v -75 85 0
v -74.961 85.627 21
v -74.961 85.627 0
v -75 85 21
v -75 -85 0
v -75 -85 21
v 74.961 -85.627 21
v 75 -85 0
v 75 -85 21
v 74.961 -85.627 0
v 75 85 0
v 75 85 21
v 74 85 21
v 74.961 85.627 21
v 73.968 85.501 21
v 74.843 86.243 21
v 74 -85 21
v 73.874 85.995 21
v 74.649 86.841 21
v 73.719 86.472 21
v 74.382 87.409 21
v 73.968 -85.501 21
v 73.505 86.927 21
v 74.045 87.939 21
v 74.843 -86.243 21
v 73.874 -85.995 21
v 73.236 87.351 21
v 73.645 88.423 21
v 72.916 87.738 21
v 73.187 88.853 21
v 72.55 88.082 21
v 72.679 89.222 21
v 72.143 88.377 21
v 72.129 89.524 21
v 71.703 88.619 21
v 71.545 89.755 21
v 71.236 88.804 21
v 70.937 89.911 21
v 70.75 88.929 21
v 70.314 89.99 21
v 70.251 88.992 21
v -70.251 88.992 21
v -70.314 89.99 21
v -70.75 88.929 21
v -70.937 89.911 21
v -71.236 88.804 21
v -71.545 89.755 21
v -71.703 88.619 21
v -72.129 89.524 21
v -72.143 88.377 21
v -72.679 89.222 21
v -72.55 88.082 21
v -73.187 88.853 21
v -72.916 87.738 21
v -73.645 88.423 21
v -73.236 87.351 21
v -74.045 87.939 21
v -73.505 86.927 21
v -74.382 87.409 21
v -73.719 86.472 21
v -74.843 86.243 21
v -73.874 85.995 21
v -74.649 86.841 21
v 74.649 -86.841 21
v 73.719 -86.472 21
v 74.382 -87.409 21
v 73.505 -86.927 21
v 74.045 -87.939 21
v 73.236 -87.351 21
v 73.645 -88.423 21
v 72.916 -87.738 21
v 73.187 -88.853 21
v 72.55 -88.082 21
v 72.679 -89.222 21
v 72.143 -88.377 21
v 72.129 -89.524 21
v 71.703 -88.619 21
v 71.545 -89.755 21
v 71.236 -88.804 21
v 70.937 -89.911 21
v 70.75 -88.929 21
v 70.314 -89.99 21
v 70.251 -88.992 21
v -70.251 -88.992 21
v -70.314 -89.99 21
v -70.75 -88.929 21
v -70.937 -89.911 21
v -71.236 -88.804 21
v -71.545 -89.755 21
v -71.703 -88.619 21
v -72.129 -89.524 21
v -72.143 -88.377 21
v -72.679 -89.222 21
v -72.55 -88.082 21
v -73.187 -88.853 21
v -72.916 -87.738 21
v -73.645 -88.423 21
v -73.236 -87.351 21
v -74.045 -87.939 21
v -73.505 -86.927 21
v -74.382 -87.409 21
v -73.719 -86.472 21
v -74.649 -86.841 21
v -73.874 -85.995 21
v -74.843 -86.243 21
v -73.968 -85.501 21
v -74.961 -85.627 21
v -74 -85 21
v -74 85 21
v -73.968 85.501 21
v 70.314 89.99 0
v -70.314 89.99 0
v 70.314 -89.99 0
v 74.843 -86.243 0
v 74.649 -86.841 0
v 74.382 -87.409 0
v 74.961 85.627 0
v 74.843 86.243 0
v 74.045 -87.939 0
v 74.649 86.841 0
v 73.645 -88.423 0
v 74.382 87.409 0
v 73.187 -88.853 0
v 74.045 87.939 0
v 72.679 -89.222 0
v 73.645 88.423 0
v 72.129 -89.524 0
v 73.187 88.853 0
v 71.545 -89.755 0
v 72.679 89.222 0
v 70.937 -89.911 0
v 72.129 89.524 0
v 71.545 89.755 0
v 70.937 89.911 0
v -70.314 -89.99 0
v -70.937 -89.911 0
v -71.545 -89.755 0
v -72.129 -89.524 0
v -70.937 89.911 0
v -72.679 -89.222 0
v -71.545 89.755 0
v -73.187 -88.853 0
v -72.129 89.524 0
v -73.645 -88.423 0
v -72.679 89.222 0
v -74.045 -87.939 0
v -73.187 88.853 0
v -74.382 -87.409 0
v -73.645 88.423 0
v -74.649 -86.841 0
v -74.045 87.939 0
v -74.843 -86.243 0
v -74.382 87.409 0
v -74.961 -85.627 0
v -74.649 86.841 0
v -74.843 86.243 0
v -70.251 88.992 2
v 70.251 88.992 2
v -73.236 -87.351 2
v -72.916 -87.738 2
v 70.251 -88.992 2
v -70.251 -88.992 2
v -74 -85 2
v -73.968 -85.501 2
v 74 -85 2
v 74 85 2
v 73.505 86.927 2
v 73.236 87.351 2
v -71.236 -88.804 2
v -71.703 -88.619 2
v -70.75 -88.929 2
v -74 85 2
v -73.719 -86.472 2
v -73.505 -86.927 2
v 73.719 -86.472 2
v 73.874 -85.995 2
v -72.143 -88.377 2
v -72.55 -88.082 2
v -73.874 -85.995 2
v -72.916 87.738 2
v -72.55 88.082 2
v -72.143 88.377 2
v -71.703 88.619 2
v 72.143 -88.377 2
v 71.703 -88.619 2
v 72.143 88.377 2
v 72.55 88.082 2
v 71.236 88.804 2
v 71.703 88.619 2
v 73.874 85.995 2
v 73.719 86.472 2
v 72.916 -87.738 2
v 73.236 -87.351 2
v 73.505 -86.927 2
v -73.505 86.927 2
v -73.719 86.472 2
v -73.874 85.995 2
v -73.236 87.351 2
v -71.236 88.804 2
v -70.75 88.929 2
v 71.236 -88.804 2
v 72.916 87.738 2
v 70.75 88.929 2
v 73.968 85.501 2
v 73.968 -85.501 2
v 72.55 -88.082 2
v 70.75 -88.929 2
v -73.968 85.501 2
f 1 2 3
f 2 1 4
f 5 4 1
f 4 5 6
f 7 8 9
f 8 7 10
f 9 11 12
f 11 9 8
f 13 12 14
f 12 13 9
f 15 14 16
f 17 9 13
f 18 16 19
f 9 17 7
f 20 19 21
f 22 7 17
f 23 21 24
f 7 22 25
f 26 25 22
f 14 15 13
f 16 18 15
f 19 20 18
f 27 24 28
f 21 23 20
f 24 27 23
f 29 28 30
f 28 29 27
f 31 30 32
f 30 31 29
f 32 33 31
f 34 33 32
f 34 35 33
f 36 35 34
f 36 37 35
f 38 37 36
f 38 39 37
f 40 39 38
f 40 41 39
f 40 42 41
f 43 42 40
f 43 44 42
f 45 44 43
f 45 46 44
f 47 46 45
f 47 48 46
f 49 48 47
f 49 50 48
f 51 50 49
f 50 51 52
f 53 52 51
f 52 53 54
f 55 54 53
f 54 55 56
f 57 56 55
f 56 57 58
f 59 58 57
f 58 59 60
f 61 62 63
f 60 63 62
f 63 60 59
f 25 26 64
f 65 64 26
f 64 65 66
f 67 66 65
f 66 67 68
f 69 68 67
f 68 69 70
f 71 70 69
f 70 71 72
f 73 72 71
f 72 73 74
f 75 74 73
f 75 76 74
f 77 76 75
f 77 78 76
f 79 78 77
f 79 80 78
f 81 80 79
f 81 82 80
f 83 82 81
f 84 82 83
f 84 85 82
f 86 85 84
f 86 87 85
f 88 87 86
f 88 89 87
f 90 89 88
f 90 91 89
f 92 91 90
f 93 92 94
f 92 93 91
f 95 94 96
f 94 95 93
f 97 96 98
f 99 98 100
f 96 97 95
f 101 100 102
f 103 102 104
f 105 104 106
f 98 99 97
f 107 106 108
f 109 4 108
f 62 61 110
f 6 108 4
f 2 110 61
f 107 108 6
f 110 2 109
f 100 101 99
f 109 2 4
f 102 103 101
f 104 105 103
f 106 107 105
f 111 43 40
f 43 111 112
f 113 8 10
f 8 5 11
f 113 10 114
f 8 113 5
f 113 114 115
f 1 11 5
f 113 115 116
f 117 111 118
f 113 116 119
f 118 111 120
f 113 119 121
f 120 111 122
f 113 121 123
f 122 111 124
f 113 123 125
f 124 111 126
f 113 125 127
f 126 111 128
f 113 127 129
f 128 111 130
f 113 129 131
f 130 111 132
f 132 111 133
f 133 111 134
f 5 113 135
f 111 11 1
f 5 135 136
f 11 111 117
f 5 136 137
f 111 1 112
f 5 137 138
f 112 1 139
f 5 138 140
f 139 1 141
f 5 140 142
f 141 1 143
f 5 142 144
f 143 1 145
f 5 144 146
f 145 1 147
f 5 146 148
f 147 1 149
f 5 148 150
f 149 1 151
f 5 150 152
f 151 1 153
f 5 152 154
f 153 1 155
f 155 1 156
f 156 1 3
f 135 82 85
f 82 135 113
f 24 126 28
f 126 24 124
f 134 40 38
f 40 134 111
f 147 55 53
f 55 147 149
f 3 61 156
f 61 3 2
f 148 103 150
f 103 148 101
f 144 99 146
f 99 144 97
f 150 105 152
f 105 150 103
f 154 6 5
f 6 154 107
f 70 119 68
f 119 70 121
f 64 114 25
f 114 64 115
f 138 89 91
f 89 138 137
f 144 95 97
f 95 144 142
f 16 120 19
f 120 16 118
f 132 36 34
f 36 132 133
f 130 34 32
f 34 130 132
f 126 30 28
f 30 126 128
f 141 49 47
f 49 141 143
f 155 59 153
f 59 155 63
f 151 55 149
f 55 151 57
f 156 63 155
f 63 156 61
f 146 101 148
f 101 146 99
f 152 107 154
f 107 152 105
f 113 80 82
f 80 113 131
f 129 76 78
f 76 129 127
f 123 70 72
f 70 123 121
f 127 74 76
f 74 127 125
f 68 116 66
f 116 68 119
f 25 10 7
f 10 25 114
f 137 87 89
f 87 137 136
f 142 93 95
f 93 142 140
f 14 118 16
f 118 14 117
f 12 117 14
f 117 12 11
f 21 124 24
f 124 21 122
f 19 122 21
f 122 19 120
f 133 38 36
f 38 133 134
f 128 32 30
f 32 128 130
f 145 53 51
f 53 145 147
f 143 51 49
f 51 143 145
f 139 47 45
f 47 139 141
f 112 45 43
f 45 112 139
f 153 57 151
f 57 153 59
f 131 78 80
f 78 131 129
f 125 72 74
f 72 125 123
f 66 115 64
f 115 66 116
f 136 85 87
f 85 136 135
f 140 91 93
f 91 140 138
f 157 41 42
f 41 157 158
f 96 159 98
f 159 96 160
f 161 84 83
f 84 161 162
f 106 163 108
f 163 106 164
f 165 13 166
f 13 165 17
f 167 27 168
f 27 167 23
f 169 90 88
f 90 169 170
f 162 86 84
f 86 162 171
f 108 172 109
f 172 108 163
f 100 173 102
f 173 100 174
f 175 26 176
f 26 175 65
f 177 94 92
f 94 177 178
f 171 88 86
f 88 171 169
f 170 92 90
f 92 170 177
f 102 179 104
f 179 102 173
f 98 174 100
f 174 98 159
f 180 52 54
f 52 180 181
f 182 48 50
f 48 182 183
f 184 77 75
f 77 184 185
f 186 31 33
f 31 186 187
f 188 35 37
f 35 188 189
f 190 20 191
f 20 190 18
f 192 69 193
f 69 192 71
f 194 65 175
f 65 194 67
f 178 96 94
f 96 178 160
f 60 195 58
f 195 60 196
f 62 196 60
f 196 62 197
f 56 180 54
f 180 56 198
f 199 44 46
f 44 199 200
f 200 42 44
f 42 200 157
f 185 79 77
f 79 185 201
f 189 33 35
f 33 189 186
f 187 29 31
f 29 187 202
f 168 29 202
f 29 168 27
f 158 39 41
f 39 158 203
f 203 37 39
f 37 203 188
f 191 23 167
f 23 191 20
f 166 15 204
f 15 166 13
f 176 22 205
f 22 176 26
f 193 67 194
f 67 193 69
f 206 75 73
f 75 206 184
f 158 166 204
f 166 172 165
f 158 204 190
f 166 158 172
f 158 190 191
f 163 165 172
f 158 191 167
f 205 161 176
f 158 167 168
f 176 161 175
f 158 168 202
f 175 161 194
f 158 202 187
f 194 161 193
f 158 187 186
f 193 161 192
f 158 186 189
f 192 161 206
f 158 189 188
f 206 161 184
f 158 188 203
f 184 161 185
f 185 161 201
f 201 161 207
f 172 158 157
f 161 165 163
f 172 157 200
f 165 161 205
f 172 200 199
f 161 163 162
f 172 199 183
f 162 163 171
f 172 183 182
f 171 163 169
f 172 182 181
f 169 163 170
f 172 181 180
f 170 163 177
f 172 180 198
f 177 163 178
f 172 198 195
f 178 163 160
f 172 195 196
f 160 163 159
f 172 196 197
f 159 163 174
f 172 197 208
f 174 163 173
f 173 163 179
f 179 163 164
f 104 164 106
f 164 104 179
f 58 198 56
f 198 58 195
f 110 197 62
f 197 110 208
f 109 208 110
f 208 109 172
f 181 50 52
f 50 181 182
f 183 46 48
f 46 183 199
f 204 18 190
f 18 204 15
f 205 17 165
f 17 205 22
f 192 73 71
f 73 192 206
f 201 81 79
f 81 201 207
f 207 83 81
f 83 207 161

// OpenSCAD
$fn = 50;


difference() {
	union() {
		hull() {
			translate(v = [-70.0000000000, 85.0000000000, 0]) {
				cylinder(h = 21, r = 5);
			}
			translate(v = [70.0000000000, 85.0000000000, 0]) {
				cylinder(h = 21, r = 5);
			}
			translate(v = [-70.0000000000, -85.0000000000, 0]) {
				cylinder(h = 21, r = 5);
			}
			translate(v = [70.0000000000, -85.0000000000, 0]) {
				cylinder(h = 21, r = 5);
			}
		}
	}
	union() {
		translate(v = [0, 0, 2]) {
			hull() {
				translate(v = [-70.0000000000, 85.0000000000, 0]) {
					cylinder(h = 19, r = 4);
				}
				translate(v = [70.0000000000, 85.0000000000, 0]) {
					cylinder(h = 19, r = 4);
				}
				translate(v = [-70.0000000000, -85.0000000000, 0]) {
					cylinder(h = 19, r = 4);
				}
				translate(v = [70.0000000000, -85.0000000000, 0]) {
					cylinder(h = 19, r = 4);
				}
			}
		}
	}
}
